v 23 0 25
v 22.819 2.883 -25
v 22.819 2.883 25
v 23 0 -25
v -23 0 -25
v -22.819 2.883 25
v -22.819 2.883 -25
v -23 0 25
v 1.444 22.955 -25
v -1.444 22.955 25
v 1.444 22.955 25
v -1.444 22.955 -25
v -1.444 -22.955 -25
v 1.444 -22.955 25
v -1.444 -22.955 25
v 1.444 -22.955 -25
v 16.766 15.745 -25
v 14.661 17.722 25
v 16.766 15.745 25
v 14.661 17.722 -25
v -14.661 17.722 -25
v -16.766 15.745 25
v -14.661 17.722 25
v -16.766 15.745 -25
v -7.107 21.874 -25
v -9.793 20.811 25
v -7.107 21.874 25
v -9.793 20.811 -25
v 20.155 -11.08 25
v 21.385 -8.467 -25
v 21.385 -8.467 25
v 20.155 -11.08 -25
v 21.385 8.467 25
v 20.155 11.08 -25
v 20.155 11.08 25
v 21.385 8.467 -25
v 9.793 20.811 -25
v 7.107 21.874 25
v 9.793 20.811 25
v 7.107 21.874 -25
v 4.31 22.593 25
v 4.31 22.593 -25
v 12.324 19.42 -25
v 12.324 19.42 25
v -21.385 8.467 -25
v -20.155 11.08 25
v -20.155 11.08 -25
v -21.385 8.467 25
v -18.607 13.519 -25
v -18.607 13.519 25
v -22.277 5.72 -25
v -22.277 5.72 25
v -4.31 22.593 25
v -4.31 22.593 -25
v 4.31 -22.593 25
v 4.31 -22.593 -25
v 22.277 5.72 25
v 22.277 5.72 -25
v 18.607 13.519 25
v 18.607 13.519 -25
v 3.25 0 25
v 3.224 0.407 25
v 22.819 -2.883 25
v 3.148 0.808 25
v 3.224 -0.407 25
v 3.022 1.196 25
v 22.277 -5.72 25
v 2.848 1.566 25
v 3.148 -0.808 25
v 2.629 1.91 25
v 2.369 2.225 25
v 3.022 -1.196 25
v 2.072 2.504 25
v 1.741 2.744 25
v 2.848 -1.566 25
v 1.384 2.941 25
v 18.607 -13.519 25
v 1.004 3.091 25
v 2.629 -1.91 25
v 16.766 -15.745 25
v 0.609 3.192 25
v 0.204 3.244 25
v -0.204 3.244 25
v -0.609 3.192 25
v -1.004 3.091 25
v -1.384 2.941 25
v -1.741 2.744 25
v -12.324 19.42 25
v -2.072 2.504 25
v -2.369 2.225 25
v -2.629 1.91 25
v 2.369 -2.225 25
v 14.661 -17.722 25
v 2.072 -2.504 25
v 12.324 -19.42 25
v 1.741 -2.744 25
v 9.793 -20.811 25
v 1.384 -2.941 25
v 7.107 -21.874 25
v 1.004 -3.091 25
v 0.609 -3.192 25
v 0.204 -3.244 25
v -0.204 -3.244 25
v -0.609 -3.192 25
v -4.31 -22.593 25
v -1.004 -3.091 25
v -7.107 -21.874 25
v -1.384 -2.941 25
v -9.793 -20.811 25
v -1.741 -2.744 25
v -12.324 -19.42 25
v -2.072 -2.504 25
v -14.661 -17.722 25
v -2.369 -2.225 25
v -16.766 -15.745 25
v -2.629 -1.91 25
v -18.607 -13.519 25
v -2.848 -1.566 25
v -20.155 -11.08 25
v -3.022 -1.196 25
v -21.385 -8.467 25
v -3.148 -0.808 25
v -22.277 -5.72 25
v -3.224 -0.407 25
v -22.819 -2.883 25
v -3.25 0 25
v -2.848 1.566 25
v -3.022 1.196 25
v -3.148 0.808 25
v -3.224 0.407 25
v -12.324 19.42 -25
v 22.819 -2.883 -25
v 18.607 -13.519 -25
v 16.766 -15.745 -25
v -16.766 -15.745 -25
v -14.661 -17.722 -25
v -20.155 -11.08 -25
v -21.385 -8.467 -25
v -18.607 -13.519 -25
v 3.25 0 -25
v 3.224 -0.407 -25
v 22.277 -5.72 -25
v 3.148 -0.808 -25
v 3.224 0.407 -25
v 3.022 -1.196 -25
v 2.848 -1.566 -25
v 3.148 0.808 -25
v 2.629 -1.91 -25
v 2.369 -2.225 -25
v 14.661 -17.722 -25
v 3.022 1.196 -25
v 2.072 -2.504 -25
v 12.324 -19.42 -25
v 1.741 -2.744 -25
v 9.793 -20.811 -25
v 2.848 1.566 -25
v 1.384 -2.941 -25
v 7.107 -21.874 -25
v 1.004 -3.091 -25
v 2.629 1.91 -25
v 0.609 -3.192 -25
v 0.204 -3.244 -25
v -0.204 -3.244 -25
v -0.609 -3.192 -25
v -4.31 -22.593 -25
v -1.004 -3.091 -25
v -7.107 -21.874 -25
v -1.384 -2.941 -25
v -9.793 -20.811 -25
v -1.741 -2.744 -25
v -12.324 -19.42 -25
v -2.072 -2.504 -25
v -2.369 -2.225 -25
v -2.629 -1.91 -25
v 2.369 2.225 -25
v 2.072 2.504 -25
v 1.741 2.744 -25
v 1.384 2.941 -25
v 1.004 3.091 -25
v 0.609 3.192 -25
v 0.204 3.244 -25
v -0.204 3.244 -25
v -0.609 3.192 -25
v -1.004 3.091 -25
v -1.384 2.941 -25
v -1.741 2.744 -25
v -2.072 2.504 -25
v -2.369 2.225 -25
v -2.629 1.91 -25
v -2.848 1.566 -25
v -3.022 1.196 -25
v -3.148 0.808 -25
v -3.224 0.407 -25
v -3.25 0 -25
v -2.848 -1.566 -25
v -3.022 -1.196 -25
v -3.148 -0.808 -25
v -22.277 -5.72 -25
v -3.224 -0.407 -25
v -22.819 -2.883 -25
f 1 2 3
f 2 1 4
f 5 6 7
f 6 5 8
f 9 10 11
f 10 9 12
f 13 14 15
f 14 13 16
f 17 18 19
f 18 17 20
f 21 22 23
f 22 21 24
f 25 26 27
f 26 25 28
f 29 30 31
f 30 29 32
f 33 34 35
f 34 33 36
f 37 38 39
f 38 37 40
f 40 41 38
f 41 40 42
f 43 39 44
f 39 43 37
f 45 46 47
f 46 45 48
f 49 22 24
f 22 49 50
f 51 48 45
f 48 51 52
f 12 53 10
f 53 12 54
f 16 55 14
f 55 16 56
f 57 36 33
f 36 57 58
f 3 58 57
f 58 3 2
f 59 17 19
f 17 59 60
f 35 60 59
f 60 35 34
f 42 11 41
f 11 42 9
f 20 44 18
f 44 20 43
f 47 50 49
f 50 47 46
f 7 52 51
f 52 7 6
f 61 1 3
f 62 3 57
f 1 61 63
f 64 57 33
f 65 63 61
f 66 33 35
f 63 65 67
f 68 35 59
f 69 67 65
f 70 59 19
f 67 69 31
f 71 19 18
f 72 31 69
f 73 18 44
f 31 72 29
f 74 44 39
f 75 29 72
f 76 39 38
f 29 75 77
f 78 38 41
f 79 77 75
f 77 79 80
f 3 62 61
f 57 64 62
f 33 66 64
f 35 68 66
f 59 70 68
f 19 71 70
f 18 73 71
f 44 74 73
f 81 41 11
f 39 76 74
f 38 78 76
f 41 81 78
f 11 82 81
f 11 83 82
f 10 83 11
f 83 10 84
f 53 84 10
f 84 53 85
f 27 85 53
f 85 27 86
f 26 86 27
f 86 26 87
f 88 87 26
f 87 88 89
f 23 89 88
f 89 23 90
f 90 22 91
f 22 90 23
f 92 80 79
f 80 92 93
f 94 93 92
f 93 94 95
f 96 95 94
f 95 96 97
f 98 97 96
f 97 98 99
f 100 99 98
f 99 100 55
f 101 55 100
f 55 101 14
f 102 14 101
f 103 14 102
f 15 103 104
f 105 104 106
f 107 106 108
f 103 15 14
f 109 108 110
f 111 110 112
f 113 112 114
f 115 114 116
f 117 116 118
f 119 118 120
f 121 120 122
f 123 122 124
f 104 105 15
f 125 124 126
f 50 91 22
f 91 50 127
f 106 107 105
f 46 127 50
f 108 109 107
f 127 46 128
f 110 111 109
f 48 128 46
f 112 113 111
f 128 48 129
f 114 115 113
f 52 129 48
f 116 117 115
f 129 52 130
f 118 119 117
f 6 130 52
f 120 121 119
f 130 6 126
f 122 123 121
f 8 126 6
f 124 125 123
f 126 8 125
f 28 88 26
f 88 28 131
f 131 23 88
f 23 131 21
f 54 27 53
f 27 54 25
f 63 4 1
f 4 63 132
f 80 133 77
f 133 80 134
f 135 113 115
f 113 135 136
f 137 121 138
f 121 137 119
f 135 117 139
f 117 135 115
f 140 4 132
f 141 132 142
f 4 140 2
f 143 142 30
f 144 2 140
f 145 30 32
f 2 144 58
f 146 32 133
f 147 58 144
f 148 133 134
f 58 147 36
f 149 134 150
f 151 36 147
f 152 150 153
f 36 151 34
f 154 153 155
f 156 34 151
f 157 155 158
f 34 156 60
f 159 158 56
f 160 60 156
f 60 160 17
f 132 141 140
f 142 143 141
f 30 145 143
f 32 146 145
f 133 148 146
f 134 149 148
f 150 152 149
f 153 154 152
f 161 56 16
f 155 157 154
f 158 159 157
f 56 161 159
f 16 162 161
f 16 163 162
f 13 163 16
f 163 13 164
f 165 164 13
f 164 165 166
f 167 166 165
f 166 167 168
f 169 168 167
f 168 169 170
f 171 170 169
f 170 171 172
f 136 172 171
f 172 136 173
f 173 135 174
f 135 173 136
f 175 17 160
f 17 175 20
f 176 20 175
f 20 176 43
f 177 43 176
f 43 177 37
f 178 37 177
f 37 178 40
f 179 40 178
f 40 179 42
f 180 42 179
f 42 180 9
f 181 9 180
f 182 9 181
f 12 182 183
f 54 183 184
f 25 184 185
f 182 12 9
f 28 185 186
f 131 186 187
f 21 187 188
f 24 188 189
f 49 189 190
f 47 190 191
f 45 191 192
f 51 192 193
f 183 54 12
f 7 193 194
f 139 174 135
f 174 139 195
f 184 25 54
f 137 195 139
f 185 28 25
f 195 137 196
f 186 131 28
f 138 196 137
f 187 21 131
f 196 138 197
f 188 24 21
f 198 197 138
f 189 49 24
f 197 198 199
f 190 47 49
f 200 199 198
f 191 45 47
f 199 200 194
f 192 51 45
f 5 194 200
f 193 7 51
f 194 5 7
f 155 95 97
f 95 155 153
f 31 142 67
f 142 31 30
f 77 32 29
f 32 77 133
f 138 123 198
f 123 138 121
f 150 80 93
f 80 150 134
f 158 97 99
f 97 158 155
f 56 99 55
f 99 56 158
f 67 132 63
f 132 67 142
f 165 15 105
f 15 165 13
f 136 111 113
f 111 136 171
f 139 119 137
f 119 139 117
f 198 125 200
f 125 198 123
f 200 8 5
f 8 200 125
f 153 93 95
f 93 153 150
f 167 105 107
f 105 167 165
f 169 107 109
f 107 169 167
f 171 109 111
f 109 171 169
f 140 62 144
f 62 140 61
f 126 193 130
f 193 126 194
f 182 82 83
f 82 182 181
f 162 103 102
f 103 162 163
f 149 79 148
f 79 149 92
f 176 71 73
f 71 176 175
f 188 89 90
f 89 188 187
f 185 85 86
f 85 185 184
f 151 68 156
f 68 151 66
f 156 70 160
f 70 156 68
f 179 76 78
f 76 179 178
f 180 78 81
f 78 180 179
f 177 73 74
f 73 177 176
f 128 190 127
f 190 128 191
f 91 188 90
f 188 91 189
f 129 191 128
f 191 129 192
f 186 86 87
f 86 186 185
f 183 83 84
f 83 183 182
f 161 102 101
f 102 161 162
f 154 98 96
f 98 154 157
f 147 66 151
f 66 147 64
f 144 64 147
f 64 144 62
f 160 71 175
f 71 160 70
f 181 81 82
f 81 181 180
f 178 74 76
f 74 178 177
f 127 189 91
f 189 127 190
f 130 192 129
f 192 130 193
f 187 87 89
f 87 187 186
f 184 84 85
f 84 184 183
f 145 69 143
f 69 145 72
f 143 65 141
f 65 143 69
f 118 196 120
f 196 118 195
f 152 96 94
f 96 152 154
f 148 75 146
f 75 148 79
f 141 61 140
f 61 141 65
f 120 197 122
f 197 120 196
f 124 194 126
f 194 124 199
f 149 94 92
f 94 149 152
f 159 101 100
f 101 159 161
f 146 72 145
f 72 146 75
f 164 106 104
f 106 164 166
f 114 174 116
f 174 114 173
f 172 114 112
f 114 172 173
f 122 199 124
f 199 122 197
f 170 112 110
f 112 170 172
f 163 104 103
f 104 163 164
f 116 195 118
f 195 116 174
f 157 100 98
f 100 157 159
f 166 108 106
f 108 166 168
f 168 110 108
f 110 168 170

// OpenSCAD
$fn = 50;


difference() {
	union() {
		translate(v = [0, 0, -25.0000000000]) {
			cylinder(h = 50, r = 23.0000000000);
		}
	}
	union() {
		translate(v = [0, 0, -100.0000000000]) {
			cylinder(h = 200, r = 3.2500000000);
		}
	}
}
